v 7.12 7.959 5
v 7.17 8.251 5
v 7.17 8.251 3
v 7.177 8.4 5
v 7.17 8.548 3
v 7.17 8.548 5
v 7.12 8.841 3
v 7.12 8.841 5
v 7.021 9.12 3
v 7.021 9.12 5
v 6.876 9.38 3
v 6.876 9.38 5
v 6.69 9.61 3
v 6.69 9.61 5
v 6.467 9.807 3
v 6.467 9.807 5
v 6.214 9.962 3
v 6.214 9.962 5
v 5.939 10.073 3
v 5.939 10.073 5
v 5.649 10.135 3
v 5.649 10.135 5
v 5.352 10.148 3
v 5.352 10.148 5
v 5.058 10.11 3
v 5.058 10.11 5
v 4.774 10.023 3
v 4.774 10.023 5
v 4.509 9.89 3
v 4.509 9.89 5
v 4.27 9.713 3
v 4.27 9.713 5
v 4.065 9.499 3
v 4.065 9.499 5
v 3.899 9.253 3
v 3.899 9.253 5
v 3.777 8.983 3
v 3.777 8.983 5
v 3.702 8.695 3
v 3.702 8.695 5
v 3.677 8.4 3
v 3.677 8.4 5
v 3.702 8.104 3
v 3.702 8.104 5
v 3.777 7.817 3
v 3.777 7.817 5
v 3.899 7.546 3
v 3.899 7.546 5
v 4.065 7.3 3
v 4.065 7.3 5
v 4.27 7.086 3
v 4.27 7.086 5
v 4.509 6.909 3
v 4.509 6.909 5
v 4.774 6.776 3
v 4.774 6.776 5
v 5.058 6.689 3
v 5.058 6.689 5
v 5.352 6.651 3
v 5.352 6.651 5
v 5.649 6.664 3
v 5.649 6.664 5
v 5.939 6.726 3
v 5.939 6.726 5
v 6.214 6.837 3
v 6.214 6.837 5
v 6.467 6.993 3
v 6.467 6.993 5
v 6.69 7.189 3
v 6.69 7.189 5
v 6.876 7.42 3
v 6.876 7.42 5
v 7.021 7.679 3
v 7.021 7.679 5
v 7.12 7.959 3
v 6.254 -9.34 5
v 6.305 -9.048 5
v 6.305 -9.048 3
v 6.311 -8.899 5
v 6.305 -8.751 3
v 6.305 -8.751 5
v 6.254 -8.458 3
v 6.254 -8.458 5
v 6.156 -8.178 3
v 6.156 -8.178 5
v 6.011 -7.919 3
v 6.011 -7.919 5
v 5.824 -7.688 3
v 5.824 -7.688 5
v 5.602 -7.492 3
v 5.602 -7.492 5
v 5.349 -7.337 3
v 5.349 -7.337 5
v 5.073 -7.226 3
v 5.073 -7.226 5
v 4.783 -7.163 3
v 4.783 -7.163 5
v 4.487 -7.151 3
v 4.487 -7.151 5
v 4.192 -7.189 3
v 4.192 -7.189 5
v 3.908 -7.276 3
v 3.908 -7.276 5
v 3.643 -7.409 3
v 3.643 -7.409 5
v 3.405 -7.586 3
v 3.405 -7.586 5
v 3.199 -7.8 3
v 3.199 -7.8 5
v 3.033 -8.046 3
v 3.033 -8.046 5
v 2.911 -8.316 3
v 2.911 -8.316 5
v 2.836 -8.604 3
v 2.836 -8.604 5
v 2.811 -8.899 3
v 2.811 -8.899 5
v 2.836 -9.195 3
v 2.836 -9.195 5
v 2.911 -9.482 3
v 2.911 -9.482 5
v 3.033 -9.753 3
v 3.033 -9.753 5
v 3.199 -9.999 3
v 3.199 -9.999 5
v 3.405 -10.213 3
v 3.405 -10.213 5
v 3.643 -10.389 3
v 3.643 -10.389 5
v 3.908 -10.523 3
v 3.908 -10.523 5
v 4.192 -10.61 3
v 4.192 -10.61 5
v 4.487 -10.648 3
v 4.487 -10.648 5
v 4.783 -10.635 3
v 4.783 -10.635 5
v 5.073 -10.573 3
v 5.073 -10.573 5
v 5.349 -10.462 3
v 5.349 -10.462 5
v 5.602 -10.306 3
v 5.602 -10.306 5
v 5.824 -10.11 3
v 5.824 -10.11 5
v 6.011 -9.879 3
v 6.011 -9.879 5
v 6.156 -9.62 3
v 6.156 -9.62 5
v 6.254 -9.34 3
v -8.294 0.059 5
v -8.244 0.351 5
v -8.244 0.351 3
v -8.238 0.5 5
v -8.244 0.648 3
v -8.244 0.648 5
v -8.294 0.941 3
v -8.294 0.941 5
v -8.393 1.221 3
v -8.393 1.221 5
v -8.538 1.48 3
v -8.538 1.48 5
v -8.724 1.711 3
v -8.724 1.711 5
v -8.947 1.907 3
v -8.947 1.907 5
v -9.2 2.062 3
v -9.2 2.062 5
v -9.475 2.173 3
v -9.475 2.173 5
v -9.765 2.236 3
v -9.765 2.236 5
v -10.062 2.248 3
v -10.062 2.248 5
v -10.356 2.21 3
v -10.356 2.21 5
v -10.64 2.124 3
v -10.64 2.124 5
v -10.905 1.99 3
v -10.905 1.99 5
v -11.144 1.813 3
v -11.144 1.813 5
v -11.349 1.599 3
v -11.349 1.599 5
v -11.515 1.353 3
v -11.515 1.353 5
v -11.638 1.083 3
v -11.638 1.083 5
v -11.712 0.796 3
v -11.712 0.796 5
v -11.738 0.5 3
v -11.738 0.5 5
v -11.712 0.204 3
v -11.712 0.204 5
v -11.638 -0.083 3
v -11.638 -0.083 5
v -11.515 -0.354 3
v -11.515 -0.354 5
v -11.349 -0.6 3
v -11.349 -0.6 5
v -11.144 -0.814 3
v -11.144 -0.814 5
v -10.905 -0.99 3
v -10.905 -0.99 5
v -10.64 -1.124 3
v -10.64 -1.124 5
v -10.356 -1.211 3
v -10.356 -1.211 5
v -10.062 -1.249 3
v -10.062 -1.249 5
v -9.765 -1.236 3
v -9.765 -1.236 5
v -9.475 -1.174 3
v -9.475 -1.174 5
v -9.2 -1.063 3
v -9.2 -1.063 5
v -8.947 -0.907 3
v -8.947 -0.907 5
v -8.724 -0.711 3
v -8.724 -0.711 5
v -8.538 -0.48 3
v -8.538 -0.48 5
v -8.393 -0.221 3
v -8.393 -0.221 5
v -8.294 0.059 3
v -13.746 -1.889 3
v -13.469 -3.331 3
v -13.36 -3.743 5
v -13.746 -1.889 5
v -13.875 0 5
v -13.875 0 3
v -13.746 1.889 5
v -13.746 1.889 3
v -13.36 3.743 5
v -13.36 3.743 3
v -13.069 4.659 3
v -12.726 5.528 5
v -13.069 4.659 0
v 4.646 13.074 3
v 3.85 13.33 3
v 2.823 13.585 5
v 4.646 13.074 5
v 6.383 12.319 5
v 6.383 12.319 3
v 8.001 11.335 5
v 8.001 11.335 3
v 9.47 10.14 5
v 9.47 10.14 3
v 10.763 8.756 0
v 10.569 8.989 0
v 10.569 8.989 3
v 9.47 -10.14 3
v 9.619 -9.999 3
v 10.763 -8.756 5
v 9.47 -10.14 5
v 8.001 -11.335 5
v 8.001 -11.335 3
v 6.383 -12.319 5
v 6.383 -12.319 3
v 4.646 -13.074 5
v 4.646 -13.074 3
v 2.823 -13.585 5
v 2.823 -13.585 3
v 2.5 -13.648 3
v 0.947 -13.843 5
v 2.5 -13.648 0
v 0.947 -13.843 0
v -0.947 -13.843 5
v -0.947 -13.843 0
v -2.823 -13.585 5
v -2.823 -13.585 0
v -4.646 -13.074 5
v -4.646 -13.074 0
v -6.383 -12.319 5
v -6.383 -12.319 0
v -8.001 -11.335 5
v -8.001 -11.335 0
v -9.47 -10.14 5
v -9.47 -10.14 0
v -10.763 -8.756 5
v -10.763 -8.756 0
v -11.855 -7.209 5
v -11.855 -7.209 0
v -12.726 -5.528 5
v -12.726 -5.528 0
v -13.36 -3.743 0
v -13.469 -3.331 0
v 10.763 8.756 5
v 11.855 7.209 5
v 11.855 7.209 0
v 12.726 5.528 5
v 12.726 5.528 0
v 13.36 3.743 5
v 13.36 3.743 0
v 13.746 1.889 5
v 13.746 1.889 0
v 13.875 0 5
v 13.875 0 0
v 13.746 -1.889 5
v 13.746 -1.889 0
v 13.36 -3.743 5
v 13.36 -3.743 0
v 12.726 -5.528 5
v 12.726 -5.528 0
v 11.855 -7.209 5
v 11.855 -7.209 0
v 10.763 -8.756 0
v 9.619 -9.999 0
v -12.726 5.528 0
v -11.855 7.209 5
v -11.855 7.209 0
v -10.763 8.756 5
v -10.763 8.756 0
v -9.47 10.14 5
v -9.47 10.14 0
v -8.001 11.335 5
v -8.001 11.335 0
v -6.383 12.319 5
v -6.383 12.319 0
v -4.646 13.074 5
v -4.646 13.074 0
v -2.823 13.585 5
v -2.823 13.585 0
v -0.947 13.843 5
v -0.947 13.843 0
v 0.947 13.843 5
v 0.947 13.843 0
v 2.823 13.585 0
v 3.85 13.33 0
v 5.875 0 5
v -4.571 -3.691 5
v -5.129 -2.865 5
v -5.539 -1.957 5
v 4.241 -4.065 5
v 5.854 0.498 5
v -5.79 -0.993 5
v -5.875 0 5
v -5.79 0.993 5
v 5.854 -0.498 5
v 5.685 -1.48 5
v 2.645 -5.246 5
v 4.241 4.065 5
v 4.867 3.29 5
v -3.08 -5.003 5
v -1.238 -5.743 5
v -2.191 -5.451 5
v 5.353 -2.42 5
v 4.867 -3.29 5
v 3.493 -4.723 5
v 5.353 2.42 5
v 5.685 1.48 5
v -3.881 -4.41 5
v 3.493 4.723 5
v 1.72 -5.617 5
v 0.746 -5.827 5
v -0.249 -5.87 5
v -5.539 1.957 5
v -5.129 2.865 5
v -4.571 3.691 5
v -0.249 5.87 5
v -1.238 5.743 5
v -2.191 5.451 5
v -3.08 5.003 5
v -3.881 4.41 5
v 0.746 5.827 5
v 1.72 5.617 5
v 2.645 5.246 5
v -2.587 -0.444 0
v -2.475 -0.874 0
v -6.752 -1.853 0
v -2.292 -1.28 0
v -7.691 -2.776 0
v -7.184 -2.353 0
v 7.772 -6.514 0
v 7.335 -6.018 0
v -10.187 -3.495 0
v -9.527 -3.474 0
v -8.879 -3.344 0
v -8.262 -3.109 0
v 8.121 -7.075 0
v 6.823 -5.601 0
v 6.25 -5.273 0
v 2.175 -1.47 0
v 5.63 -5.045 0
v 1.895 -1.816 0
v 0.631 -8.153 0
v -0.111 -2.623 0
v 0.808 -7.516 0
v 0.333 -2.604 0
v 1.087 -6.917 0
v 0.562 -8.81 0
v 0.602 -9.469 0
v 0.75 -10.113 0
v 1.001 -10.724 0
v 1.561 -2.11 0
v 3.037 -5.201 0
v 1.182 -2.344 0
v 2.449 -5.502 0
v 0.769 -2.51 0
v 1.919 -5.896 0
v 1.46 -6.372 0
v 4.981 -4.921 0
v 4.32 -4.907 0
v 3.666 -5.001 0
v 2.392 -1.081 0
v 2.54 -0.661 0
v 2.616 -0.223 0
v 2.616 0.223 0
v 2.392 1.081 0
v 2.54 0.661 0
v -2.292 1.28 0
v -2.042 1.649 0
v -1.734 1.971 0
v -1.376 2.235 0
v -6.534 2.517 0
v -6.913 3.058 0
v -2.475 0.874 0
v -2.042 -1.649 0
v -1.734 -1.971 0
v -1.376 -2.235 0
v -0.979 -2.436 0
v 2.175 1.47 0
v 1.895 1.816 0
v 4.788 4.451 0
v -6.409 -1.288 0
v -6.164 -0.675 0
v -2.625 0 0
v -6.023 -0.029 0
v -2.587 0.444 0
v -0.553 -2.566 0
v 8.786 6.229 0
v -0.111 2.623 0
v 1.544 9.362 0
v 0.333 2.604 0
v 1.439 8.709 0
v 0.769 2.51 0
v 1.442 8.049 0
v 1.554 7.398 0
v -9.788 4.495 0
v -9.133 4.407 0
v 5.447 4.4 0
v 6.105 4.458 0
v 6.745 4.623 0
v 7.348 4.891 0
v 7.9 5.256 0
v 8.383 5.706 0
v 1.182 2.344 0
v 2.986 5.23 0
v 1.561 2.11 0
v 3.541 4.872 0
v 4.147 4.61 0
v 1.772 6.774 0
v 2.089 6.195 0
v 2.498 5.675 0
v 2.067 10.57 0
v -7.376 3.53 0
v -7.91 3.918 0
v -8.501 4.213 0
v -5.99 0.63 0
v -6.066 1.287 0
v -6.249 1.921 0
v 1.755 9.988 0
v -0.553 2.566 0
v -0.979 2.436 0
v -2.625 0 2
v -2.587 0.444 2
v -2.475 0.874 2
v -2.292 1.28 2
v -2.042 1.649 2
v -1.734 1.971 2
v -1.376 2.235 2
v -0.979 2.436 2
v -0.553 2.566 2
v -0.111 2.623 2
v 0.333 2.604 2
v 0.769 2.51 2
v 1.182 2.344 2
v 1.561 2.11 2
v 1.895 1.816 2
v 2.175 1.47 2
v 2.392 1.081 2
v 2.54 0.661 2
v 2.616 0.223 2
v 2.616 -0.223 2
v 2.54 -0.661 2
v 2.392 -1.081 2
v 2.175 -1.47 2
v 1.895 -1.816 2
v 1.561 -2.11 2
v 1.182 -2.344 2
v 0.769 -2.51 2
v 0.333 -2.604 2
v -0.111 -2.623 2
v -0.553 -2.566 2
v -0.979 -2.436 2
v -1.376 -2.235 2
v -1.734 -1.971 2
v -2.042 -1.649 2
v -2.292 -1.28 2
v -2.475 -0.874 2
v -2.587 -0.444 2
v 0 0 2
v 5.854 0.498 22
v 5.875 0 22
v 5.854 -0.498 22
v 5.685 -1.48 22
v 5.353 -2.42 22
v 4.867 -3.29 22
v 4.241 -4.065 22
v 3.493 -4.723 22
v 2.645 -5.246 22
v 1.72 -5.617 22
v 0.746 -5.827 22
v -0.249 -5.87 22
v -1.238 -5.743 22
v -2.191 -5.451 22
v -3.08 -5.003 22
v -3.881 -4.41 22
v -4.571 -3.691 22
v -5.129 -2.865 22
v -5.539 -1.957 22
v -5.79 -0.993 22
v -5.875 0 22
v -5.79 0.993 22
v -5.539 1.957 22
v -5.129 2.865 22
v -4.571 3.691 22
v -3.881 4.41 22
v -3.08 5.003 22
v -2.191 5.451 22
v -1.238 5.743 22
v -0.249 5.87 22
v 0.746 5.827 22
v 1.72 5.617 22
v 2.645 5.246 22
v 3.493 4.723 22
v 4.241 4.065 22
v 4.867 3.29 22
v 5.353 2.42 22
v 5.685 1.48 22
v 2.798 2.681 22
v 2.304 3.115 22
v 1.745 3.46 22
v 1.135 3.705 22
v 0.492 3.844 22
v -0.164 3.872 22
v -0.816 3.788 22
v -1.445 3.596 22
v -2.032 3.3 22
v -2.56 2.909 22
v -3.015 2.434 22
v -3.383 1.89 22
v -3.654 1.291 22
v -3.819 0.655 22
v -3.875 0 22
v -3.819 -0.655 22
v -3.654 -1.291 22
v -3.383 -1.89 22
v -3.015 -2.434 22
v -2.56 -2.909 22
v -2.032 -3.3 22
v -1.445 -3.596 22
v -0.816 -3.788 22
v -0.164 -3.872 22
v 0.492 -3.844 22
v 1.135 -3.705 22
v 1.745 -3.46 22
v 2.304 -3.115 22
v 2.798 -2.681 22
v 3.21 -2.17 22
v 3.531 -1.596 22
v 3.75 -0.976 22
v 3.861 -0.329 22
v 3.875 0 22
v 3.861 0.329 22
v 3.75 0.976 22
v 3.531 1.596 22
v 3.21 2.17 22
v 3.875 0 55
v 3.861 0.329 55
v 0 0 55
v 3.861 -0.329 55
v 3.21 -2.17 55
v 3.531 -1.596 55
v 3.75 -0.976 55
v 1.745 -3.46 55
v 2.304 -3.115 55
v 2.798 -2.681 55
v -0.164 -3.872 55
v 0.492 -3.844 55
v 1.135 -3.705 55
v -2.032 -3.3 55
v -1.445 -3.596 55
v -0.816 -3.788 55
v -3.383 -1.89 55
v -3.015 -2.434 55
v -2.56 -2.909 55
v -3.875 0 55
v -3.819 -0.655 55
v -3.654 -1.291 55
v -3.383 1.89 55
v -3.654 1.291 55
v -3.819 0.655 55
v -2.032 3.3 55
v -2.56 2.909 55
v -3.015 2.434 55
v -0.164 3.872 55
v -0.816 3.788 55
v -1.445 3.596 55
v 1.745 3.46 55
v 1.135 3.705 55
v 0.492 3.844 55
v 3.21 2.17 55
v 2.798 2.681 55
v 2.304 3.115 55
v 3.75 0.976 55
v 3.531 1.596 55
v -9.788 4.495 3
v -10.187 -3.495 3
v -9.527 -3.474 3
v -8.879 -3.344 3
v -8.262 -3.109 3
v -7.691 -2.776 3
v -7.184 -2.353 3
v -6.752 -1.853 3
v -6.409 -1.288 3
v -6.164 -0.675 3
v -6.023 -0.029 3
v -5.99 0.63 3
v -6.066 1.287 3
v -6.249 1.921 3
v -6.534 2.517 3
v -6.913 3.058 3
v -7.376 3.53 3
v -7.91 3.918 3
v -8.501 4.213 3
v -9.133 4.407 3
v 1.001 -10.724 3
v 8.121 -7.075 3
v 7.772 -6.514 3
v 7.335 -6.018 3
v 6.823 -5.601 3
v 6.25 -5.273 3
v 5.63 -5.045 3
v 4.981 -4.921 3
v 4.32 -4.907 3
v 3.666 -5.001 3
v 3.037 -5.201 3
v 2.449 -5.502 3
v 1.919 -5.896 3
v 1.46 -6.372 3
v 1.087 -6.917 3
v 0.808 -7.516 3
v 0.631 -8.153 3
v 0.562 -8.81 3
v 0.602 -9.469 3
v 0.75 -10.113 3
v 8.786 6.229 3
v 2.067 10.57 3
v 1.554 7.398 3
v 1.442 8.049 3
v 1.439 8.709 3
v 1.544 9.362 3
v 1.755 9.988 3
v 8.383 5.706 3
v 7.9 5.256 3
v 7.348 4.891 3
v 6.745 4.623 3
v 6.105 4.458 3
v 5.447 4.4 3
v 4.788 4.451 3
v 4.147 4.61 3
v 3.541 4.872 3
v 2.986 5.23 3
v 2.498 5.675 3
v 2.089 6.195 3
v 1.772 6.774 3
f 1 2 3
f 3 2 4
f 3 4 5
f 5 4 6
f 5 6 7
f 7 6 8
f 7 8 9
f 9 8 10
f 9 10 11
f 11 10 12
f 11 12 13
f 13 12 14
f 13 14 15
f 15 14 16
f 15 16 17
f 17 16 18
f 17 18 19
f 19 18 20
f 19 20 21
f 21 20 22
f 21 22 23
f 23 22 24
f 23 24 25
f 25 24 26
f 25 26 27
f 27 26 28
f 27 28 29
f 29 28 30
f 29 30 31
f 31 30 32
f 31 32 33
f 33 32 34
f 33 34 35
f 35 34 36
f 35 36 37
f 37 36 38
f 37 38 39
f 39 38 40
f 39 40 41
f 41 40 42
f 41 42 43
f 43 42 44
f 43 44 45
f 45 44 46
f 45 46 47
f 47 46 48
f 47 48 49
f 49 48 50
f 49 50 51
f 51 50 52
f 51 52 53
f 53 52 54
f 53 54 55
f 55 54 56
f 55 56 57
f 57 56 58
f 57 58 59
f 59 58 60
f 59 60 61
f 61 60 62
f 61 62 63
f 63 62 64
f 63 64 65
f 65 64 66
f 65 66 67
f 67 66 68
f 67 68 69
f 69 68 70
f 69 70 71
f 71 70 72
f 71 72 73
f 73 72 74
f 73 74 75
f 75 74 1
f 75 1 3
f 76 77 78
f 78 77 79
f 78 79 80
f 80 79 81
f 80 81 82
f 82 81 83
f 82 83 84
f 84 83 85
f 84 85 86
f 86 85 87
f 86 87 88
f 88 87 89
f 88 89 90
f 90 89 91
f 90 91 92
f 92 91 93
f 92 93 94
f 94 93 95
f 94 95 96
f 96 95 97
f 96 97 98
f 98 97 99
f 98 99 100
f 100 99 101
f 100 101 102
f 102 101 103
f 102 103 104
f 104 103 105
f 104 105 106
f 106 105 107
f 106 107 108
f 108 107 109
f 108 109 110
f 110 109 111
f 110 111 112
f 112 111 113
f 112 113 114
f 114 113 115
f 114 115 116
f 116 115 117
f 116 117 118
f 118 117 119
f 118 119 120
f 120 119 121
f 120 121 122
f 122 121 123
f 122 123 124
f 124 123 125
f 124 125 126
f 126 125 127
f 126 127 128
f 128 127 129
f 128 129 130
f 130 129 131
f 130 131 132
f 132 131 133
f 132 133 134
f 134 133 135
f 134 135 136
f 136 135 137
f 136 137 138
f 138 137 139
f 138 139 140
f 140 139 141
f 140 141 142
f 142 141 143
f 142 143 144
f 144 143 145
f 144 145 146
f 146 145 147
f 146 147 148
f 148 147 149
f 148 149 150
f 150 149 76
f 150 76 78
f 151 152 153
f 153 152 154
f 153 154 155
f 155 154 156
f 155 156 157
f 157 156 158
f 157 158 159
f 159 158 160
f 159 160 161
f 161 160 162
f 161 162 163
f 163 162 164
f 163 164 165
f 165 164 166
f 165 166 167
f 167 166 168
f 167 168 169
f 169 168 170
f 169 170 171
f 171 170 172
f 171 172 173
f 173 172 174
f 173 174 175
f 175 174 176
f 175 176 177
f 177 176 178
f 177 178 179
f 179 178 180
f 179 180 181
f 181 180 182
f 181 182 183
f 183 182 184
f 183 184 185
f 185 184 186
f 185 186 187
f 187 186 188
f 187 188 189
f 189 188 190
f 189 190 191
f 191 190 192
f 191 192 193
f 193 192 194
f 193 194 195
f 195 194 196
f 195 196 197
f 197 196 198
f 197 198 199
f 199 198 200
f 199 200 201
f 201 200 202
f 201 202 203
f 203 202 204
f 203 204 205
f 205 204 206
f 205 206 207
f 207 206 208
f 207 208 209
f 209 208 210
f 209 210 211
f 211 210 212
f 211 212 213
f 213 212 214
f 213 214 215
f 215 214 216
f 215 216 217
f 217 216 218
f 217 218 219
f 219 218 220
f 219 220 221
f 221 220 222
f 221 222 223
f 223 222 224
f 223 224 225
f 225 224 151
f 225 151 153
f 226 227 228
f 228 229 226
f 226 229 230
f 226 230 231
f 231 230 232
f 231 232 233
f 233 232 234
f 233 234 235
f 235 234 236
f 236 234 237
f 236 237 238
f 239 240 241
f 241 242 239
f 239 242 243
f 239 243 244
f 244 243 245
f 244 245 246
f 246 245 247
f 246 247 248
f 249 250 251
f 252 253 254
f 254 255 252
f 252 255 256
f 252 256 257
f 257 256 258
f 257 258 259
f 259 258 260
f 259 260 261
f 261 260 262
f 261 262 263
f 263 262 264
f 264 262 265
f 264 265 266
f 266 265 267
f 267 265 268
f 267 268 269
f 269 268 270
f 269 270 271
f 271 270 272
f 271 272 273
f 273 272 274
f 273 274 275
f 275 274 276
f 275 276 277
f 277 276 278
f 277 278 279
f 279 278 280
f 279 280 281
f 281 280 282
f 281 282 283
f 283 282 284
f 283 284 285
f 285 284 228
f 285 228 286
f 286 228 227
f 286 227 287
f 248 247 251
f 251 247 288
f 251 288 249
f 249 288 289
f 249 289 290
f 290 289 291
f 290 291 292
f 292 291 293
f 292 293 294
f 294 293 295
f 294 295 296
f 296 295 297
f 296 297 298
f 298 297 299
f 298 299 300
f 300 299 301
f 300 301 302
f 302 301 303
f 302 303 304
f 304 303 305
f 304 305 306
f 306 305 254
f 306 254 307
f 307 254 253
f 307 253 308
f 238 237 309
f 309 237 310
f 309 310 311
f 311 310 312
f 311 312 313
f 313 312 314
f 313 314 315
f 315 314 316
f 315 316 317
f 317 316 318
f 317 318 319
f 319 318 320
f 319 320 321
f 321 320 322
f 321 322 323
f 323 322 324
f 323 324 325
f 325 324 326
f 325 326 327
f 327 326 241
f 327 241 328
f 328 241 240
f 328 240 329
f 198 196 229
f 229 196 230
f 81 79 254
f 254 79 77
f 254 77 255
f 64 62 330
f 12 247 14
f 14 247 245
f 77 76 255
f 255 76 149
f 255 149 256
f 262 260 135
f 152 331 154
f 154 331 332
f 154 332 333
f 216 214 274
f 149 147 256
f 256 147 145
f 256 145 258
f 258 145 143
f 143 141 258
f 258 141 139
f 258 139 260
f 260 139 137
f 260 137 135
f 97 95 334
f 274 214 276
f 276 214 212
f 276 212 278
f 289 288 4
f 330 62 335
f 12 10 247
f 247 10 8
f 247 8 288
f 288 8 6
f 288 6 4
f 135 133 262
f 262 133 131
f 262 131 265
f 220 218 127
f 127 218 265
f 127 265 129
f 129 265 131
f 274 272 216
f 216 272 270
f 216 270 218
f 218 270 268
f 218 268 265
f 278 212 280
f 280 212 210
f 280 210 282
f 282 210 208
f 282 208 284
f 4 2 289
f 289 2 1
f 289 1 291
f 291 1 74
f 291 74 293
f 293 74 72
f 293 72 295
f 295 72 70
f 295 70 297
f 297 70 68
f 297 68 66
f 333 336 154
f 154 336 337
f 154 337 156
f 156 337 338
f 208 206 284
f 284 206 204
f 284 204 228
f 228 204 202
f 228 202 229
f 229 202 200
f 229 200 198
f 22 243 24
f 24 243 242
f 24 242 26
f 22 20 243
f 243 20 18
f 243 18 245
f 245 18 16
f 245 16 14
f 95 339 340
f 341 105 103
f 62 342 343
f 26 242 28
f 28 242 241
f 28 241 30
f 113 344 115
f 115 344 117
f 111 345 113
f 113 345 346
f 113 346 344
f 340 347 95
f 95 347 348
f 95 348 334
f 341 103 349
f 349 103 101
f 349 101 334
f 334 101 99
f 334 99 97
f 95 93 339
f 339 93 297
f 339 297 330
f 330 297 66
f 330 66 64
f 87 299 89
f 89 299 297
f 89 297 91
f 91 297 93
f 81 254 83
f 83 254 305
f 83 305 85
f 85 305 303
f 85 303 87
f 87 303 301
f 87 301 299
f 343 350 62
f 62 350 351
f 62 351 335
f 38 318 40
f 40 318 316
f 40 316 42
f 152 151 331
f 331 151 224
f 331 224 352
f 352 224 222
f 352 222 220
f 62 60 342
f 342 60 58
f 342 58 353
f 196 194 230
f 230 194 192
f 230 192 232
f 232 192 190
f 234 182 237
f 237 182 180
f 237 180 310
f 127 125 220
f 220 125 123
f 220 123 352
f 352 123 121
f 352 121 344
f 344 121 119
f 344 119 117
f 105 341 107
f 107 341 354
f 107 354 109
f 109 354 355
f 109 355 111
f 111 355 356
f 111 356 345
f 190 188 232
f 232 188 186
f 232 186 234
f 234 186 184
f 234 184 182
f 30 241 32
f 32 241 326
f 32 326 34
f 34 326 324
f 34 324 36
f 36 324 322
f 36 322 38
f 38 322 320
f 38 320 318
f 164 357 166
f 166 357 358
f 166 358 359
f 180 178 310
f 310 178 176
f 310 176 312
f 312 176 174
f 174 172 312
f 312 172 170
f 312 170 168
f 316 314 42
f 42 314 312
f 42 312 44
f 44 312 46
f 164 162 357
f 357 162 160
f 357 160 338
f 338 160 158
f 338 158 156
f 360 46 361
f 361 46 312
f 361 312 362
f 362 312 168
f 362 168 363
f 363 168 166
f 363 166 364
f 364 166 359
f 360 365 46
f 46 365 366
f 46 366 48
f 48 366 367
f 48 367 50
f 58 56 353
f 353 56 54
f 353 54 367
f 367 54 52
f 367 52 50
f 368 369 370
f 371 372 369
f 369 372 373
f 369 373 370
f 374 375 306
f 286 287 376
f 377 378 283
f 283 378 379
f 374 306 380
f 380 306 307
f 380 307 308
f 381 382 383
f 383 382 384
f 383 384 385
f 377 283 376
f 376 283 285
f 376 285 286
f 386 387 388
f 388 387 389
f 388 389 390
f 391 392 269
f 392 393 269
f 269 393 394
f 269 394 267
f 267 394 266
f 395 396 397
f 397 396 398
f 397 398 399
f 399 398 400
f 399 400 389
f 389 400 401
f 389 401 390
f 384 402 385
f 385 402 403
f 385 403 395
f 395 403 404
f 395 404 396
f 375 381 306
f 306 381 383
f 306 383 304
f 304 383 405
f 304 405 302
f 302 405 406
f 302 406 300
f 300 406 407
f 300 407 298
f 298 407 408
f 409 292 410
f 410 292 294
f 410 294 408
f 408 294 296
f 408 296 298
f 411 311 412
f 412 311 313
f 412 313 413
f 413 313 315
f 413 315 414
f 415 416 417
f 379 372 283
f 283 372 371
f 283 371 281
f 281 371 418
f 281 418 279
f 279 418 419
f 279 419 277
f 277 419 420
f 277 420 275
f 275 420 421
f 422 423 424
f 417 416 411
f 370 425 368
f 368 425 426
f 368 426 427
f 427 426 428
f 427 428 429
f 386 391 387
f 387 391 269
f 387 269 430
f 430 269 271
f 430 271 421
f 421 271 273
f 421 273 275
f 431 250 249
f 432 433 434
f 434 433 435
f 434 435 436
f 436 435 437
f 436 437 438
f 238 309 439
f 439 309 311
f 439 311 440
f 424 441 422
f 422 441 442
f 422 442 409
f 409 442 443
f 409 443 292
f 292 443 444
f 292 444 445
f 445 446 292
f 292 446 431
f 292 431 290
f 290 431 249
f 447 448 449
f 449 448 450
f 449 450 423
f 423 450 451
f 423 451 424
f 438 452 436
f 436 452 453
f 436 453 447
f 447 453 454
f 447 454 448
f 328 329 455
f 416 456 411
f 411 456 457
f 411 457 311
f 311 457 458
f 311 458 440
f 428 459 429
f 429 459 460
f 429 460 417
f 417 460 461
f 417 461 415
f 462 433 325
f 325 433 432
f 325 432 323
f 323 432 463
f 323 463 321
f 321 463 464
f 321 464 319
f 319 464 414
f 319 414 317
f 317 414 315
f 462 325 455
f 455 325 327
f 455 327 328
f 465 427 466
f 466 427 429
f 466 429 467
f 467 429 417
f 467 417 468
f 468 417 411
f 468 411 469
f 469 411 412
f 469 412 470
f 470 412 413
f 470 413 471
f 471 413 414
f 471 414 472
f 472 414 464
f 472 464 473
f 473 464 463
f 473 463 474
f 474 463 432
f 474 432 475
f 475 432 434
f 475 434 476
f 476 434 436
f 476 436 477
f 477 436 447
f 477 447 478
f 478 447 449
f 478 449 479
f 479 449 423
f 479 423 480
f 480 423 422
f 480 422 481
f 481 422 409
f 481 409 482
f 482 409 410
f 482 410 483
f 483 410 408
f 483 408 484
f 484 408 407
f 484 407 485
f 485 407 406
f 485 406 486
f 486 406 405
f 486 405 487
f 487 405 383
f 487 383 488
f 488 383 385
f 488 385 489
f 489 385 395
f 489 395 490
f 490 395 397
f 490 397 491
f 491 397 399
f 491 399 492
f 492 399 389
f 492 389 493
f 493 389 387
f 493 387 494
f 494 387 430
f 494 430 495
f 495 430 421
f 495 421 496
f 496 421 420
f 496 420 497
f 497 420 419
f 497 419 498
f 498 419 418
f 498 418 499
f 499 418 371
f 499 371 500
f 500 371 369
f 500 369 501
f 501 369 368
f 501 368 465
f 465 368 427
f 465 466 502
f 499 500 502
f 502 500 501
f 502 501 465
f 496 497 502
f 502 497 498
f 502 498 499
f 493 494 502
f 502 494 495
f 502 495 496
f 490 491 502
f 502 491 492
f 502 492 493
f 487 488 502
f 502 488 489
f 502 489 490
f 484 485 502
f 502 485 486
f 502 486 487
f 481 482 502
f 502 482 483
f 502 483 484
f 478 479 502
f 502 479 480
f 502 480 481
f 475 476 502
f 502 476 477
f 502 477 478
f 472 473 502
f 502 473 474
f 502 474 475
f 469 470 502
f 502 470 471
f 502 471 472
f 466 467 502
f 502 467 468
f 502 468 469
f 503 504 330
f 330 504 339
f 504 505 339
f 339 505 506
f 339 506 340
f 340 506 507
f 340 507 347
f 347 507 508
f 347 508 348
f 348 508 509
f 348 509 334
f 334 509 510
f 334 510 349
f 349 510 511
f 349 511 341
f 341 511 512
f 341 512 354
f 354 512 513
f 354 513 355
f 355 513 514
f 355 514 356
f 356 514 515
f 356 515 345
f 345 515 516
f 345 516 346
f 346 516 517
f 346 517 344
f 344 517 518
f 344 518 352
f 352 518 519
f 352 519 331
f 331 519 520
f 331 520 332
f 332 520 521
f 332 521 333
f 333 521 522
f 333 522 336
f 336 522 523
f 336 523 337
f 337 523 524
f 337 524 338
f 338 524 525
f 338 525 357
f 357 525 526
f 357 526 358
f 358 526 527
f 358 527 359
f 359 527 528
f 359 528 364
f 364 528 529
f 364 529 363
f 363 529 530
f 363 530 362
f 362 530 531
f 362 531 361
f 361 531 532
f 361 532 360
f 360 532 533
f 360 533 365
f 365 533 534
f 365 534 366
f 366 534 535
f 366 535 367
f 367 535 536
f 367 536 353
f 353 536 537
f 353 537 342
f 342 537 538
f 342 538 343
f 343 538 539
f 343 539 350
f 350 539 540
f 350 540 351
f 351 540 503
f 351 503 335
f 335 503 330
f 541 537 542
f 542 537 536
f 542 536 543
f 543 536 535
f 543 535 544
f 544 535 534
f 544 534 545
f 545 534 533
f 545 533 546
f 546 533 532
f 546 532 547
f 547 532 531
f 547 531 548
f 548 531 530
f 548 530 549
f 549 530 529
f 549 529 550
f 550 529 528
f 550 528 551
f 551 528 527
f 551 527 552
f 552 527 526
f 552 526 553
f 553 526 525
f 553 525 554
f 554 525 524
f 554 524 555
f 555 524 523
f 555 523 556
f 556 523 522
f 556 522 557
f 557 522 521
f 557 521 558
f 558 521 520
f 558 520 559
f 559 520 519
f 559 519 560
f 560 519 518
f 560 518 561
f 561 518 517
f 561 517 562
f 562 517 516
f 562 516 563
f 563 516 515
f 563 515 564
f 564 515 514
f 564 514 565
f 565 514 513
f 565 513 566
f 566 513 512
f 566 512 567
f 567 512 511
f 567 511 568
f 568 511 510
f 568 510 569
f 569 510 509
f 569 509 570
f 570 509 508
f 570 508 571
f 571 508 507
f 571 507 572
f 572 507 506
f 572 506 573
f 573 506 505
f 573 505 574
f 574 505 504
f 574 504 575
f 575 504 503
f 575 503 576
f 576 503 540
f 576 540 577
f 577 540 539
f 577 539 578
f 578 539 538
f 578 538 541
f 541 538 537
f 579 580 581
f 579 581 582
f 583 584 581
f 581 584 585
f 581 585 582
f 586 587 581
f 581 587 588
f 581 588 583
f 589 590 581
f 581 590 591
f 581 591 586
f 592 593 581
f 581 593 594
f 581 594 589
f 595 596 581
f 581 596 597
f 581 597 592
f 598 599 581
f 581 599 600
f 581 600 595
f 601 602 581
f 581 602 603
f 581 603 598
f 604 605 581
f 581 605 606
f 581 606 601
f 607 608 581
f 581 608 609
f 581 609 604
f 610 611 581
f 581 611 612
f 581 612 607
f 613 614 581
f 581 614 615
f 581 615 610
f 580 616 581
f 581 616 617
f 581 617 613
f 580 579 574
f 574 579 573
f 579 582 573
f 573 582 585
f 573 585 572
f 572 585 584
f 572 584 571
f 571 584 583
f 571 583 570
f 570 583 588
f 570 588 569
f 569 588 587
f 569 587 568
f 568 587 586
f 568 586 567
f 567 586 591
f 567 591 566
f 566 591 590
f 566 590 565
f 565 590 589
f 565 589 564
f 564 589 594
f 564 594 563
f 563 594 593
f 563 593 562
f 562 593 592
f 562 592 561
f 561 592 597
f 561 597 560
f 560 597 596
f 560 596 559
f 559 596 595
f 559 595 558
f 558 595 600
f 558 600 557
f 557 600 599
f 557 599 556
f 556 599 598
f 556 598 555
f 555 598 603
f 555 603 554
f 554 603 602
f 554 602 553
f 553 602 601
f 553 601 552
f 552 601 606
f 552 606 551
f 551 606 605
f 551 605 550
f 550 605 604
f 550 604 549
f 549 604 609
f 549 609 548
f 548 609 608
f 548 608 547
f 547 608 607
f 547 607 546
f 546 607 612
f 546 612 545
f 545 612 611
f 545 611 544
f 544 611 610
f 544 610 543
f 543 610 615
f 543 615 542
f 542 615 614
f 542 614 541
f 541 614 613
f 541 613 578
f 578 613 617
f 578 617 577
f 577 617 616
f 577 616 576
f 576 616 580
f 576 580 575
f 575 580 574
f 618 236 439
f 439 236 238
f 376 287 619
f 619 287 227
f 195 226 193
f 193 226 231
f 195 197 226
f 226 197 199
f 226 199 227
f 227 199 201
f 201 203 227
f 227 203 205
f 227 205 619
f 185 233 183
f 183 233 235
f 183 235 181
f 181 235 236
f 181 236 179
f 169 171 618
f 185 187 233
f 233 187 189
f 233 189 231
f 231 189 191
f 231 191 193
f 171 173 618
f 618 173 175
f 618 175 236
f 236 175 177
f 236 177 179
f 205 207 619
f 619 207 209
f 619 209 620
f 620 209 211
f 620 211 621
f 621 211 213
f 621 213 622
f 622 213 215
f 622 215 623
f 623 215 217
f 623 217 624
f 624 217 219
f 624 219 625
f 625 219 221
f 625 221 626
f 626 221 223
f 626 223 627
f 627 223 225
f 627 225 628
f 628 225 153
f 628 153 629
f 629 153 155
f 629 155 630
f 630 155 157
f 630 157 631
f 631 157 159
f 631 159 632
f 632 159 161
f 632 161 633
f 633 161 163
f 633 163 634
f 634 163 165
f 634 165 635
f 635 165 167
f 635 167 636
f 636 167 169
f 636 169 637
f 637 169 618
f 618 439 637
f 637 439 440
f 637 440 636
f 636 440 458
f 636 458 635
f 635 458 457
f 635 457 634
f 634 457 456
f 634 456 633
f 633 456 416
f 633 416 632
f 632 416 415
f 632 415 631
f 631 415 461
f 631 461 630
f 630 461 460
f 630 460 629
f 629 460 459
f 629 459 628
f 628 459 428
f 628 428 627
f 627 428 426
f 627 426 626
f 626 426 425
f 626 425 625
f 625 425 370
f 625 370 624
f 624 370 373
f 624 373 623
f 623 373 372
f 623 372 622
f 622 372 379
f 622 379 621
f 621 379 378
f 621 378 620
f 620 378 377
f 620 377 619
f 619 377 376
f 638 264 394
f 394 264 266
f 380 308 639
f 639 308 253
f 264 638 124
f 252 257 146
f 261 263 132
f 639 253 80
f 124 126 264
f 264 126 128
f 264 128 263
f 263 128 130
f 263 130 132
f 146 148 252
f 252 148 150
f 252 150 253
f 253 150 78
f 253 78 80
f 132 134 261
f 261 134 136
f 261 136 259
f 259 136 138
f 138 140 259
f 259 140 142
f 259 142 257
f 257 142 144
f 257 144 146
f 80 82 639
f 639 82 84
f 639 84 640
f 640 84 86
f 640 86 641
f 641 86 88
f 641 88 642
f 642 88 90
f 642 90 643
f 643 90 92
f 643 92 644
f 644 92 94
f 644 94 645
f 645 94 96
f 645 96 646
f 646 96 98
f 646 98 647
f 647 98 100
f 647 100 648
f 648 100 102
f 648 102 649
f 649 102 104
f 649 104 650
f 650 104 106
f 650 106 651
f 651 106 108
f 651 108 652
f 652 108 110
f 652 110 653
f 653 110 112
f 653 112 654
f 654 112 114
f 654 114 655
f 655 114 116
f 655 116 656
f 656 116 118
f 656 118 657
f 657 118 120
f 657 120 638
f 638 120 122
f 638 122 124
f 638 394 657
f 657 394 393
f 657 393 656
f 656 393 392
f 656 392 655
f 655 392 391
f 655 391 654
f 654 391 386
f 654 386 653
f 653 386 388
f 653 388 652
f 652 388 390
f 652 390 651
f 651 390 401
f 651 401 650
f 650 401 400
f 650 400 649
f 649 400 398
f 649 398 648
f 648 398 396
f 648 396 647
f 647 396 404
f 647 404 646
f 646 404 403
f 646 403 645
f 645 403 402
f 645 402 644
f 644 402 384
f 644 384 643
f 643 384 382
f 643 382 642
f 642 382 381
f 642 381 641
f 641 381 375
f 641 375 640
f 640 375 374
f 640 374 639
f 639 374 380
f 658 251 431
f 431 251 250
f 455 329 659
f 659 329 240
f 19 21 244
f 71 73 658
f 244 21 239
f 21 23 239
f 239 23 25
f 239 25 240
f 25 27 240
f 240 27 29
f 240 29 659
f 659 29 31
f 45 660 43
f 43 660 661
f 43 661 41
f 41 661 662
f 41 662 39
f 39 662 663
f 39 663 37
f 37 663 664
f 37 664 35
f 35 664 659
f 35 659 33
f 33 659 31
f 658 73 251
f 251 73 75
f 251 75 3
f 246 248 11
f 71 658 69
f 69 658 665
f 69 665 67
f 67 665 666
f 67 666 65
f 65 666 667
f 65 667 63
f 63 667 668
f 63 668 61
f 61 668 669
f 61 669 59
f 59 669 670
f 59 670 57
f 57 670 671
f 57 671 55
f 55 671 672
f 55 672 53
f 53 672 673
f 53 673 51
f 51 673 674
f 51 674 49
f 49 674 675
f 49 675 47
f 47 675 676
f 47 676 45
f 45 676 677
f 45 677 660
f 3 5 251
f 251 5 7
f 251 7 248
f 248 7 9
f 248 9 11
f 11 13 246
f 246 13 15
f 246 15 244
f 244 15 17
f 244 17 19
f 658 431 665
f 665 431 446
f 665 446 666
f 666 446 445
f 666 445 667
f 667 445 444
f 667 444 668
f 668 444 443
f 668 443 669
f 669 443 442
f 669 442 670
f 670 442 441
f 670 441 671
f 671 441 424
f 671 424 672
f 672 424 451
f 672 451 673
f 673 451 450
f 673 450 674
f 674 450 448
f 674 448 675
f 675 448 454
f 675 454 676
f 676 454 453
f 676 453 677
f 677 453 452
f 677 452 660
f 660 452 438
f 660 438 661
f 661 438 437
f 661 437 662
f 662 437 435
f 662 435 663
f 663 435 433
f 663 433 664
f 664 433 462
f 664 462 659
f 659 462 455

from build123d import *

# Parameters (mm, degrees)
ESQUISSE1_R                  = 13.875
BOSS_EXTRU_1_DEPTH           = 5
ESQUISSE2_R                  = 2.625
ENL_V_MAT_EXTRU_1_DEPTH      = 2
ESQUISSE3_R                  = 3.875
BOSS_EXTRU_2_DEPTH           = 50
ESQUISSE4_R                  = 5.875
BOSS_EXTRU_3_DEPTH           = 17
ENL_V_MAT_EXTRU_2_DEPTH      = 59.395472855
ENL_V_MAT_EXTRU_2_DEPTH_BACK = 59.395472855
ESQUISSE5_R                  = 1.75
ENL_V_MAT_EXTRU_3_DEPTH      = 3


with BuildPart() as part:
    # Esquisse1 → Boss.-Extru.1 (new body)
    with BuildSketch(Plane.XY):
        Circle(ESQUISSE1_R)
    extrude(amount=BOSS_EXTRU_1_DEPTH)

    # Esquisse2 → Enlèv. mat.-Extru.1 (cut)
    with BuildSketch(Plane(origin=(0, 0, 0), x_dir=(-1, 0, 0), z_dir=(0, 0, -1))):
        Circle(ESQUISSE2_R)
    extrude(amount=-ENL_V_MAT_EXTRU_1_DEPTH, mode=Mode.SUBTRACT)

    # Esquisse3 → Boss.-Extru.2 (add)
    with BuildSketch(Plane.XY.offset(5)):
        Circle(ESQUISSE3_R)
    extrude(amount=BOSS_EXTRU_2_DEPTH)

    # Esquisse4 → Boss.-Extru.3 (add)
    with BuildSketch(Plane.XY.offset(5)):
        Circle(ESQUISSE4_R)
    extrude(amount=BOSS_EXTRU_3_DEPTH)

    # Esquisse5 → Enlèv. mat.-Extru.2 (cut, two sides: drawn at the far end of the back side and taken through both)
    with BuildSketch(Plane(origin=(0, 0, 0), x_dir=(-1, 0, 0), z_dir=(0, 0, -1)).offset(-ENL_V_MAT_EXTRU_2_DEPTH_BACK)):
        with Locations((9.987504748, 0.499748848)):
            Circle(ESQUISSE5_R)
        with Locations((-4.560957176, -8.899307256)):
            Circle(ESQUISSE5_R)
        with Locations((-5.426547571, 8.399558408)):
            Circle(ESQUISSE5_R)
    extrude(amount=ENL_V_MAT_EXTRU_2_DEPTH + ENL_V_MAT_EXTRU_2_DEPTH_BACK, mode=Mode.SUBTRACT)

    # Esquisse6 → Enlèv. mat.-Extru.3 (cut)
    with BuildSketch(Plane(origin=(0, 0, 0), x_dir=(-1, 0, 0), z_dir=(0, 0, -1))):
        with BuildLine():
            Line((9.787605209, 4.494750747), (14.846993763, 4.747909435))
            ThreePointArc((14.846993763, 4.747909435), (19.041895201, 0.952807075), (15.246792841, -3.242094364))
            Line((15.246792841, -3.242094364), (10.187404287, -3.495253052))
            ThreePointArc((10.187404287, -3.495253052), (5.992502849, 0.299849309), (9.787605209, 4.494750747))
        make_face()
        with BuildLine():
            Line((-1.001234274, -10.723690126), (-4.262940688, -17.087908521))
            ThreePointArc((-4.262940688, -17.087908521), (-9.647046461, -18.823248552), (-11.382386493, -13.43914278))
            Line((-11.382386493, -13.43914278), (-8.120680079, -7.074924385))
            ThreePointArc((-8.120680079, -7.074924385), (-2.736574306, -5.339584354), (-1.001234274, -10.723690126))
        make_face()
        with BuildLine():
            Line((-8.786370935, 6.22893938), (-13.208101845, 13.073178107))
            ThreePointArc((-13.208101845, 13.073178107), (-12.01889751, 18.603620499), (-6.488455118, 17.414416164))
            Line((-6.488455118, 17.414416164), (-2.066724208, 10.570177437))
            ThreePointArc((-2.066724208, 10.570177437), (-3.255928543, 5.039735045), (-8.786370935, 6.22893938))
        make_face()
    extrude(amount=-ENL_V_MAT_EXTRU_3_DEPTH, mode=Mode.SUBTRACT)


solid = part.part
